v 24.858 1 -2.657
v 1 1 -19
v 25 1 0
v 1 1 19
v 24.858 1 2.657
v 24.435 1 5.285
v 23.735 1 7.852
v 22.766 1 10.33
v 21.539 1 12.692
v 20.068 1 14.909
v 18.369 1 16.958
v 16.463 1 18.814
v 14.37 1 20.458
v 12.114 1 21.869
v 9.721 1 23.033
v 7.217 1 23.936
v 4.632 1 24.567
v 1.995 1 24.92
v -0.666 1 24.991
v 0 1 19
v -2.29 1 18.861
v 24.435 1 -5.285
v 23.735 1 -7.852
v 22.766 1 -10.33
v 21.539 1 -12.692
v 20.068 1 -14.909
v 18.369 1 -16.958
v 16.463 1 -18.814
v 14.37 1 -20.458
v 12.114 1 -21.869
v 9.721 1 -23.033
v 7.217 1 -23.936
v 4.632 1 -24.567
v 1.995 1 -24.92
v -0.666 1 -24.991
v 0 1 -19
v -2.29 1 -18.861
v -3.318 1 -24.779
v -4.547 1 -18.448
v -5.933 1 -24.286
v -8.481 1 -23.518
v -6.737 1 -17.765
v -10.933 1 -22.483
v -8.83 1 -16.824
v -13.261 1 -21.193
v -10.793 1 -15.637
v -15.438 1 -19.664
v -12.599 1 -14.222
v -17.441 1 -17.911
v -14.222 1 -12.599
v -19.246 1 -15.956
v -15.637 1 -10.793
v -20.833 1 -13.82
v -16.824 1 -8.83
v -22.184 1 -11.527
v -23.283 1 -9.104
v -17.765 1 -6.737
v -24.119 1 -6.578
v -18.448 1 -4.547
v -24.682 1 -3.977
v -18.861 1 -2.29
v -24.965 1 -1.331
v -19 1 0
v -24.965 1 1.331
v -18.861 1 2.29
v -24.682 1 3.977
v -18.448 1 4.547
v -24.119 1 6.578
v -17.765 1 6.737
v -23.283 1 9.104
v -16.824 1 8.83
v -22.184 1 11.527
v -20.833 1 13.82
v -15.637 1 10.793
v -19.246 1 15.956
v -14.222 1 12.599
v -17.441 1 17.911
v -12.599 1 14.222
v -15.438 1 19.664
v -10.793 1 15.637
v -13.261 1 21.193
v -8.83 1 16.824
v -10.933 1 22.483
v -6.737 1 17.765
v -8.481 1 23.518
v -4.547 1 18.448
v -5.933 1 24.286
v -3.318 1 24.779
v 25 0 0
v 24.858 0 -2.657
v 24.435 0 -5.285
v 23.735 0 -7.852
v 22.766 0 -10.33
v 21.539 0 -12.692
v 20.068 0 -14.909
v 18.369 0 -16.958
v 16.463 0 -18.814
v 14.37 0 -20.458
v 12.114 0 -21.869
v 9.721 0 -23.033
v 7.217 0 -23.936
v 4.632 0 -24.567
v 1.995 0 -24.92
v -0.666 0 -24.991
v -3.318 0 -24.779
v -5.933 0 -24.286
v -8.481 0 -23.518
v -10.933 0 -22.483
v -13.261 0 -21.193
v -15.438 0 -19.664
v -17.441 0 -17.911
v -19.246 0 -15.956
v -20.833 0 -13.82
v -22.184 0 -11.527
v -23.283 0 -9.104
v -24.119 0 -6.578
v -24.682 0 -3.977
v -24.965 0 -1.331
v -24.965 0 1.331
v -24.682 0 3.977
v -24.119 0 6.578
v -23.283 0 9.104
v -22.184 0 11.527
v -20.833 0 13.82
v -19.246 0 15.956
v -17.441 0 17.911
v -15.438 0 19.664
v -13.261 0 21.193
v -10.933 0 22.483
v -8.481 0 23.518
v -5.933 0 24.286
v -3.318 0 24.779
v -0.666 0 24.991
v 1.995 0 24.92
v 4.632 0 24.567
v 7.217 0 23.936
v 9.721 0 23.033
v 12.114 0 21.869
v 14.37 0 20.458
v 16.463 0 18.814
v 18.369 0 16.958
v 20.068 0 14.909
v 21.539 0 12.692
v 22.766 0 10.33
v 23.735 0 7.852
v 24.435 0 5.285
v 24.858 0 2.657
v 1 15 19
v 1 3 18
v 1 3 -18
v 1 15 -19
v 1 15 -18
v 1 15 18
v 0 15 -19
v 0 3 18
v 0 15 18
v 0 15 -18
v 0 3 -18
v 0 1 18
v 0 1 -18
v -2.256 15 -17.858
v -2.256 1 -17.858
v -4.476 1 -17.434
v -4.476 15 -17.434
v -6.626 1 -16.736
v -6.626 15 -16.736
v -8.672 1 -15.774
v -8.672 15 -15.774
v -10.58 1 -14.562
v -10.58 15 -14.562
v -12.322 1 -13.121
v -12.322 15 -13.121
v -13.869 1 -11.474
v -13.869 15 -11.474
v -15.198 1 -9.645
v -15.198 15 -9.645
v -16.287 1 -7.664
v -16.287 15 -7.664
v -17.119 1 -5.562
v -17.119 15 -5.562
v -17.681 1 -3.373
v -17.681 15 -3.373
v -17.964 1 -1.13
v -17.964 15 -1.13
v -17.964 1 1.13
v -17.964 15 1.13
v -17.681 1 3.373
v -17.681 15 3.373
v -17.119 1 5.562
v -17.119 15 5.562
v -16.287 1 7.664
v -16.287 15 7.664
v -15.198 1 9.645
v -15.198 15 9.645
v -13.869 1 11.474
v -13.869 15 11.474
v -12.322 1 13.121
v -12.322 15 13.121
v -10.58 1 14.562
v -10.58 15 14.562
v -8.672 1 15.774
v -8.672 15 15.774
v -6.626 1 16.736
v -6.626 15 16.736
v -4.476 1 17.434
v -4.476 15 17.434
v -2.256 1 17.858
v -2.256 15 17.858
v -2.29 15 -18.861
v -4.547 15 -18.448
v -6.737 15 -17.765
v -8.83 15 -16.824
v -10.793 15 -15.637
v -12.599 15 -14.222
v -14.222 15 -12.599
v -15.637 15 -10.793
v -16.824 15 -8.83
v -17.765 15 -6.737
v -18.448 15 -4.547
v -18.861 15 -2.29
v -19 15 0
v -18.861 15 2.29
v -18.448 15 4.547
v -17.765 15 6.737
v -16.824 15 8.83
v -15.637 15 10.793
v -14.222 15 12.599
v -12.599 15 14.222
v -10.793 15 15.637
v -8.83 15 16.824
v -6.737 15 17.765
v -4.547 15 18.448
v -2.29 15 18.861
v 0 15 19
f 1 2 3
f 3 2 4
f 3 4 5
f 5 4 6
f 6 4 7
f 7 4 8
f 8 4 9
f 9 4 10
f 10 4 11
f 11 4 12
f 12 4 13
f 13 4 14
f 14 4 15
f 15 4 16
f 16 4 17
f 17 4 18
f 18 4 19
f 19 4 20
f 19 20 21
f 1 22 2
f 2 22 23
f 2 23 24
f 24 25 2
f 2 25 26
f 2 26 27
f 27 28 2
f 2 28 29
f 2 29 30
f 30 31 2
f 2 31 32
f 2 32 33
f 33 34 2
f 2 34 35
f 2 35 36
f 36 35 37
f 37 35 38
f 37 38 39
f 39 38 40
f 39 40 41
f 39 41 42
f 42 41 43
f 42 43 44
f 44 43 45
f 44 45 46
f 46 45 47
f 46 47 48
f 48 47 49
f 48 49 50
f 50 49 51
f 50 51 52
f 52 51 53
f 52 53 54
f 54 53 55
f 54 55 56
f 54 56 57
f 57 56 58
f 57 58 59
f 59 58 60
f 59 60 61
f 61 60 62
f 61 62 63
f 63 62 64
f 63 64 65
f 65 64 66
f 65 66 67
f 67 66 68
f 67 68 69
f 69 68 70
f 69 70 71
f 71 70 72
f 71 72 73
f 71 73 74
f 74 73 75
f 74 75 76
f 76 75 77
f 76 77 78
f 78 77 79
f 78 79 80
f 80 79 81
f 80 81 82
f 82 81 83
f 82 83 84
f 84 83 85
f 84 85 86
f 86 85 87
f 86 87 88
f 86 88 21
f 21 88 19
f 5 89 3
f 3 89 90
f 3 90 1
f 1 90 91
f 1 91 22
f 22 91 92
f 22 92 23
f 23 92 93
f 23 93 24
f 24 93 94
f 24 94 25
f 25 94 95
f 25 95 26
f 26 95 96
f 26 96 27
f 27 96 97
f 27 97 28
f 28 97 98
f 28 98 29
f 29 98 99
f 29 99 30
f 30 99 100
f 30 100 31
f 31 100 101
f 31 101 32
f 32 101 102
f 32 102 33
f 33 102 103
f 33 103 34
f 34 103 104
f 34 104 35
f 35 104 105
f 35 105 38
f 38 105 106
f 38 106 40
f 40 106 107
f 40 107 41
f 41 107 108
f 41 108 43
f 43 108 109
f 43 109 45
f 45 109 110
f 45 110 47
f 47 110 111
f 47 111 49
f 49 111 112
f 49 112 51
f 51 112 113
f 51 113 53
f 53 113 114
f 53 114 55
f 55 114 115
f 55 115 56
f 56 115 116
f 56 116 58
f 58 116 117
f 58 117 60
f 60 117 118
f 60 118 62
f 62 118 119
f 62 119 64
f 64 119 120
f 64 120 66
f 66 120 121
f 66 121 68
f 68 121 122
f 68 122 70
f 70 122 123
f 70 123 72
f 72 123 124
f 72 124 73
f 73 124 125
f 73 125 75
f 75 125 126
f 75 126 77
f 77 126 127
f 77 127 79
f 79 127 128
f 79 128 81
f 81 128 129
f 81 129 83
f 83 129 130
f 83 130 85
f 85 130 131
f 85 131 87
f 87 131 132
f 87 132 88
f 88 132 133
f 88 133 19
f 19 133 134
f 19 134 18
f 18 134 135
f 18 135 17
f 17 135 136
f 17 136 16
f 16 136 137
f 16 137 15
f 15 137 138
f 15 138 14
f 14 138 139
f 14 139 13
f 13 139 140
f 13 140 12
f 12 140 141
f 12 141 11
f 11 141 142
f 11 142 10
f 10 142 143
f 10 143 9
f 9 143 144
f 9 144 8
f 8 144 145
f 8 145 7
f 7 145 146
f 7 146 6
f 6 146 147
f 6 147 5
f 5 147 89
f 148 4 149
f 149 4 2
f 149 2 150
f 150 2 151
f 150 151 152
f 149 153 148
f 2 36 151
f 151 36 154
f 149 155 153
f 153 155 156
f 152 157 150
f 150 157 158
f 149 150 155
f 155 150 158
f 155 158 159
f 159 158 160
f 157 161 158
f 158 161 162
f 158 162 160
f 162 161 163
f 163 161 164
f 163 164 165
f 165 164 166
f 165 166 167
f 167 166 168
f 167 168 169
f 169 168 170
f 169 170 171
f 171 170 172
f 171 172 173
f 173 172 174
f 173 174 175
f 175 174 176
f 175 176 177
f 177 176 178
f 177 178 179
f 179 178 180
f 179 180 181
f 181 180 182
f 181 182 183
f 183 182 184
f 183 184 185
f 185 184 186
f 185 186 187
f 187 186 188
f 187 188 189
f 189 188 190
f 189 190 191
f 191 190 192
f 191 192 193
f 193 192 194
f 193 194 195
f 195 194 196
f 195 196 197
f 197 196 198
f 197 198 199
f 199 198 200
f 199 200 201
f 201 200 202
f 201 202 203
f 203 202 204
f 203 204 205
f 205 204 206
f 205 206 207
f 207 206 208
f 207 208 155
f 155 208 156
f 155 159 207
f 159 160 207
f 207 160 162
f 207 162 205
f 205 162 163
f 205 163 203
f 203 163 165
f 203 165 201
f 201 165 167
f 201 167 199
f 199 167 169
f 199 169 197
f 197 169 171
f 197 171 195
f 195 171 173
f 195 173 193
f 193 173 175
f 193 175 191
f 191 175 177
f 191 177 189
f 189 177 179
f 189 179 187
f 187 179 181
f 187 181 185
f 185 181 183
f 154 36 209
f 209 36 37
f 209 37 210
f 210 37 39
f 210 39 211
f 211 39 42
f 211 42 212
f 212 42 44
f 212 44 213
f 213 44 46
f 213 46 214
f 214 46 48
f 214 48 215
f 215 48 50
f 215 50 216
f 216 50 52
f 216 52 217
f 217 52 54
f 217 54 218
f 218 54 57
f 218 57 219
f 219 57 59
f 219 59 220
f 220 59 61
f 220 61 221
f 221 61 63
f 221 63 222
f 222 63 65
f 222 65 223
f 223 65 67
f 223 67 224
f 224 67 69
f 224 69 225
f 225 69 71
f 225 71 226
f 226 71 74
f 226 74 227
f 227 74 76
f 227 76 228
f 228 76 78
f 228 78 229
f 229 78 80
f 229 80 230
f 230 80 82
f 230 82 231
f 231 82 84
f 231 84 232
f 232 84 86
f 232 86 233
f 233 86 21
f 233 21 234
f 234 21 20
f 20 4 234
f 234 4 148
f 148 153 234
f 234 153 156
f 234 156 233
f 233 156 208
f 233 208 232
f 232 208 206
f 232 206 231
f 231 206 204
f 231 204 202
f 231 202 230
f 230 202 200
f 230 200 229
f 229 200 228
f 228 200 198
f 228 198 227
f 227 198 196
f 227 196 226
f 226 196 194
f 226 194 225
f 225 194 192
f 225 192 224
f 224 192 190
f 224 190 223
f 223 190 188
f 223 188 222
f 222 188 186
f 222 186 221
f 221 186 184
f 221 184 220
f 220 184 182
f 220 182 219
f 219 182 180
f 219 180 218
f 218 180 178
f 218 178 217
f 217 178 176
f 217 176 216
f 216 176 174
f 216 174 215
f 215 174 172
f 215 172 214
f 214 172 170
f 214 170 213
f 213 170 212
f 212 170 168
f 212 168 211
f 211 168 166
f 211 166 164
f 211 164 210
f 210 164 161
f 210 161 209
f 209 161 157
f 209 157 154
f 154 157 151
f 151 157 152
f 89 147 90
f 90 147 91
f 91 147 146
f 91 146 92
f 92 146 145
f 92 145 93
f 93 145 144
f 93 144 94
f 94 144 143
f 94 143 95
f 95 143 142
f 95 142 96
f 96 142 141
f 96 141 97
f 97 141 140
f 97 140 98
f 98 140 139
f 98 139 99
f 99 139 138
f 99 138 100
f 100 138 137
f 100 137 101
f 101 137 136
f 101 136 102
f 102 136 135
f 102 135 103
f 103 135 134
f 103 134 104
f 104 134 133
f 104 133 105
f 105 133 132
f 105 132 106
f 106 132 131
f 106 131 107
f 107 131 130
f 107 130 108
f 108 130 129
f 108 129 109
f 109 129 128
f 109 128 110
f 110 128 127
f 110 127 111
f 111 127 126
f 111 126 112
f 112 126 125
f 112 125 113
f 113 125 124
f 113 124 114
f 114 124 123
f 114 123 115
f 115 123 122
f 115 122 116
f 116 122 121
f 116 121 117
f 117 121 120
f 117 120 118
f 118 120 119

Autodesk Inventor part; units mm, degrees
ref_plane "YZ Plane" through (0, 0, 0) normal (1, 0, 0) x (0, 1, 0)
ref_plane "XZ Plane" through (0, 0, 0) normal (0, 1, 0) x (-1, 0, 0)
ref_plane "XY Plane" through (0, 0, 0) normal (0, 0, 1) x (1, 0, 0)
sketch "スケッチ1" plane through (0, 0, 0) normal (0, 1, 0) x (-1, 0, 0)
  arc A0 (0, -19) -> (0, 19) centre (0, 0) ccw
  line L0 (0, 19) -> (-1, 19)
  line L1 (-1, 19) -> (-1, -19)
  line L2 (-1, -19) -> (0, -19)
  dimension "d0" = 19
  dimension "d1" = 1
  dimension "d2" = 38
extrude "押し出し1" add sketch "スケッチ1" along normal blind 15
sketch "スケッチ2" plane through (0, 15, 0) normal (0, 1, 0) x (1, 0, 0)
  arc A0 (0, 18) -> (0, -18) centre (0, 0) ccw
  line L0 (0, -18) -> (0, 18)
  dimension "d5" = 18
extrude "押し出し2" cut sketch "スケッチ2" against normal blind 14
sketch "スケッチ3" plane through (0, 15, 0) normal (0, 1, 0) x (1, 0, 0)
  line L0 (0, 18) -> (0, -18) projected
  line L1 (0, -18) -> (2.1384, -18)
  line L2 (2.1384, -18) -> (2.1384, 18)
  line L3 (2.1384, 18) -> (0, 18)
  line L4 (0, 18) -> (0, -18)
  point P0 (0, 0)
  dimension "d13" = 36
extrude "押し出し3" cut sketch "スケッチ3" against normal blind 12
sketch "スケッチ4" plane through (0, 0, 0) normal (0, -1, 0) x (1, 0, 0)
  circle A0 centre (0, 0) radius 25
  dimension "d10" = 50
extrude "押し出し4" add sketch "スケッチ4" against normal blind 1
properties part number "Shield_WeldSupport"
